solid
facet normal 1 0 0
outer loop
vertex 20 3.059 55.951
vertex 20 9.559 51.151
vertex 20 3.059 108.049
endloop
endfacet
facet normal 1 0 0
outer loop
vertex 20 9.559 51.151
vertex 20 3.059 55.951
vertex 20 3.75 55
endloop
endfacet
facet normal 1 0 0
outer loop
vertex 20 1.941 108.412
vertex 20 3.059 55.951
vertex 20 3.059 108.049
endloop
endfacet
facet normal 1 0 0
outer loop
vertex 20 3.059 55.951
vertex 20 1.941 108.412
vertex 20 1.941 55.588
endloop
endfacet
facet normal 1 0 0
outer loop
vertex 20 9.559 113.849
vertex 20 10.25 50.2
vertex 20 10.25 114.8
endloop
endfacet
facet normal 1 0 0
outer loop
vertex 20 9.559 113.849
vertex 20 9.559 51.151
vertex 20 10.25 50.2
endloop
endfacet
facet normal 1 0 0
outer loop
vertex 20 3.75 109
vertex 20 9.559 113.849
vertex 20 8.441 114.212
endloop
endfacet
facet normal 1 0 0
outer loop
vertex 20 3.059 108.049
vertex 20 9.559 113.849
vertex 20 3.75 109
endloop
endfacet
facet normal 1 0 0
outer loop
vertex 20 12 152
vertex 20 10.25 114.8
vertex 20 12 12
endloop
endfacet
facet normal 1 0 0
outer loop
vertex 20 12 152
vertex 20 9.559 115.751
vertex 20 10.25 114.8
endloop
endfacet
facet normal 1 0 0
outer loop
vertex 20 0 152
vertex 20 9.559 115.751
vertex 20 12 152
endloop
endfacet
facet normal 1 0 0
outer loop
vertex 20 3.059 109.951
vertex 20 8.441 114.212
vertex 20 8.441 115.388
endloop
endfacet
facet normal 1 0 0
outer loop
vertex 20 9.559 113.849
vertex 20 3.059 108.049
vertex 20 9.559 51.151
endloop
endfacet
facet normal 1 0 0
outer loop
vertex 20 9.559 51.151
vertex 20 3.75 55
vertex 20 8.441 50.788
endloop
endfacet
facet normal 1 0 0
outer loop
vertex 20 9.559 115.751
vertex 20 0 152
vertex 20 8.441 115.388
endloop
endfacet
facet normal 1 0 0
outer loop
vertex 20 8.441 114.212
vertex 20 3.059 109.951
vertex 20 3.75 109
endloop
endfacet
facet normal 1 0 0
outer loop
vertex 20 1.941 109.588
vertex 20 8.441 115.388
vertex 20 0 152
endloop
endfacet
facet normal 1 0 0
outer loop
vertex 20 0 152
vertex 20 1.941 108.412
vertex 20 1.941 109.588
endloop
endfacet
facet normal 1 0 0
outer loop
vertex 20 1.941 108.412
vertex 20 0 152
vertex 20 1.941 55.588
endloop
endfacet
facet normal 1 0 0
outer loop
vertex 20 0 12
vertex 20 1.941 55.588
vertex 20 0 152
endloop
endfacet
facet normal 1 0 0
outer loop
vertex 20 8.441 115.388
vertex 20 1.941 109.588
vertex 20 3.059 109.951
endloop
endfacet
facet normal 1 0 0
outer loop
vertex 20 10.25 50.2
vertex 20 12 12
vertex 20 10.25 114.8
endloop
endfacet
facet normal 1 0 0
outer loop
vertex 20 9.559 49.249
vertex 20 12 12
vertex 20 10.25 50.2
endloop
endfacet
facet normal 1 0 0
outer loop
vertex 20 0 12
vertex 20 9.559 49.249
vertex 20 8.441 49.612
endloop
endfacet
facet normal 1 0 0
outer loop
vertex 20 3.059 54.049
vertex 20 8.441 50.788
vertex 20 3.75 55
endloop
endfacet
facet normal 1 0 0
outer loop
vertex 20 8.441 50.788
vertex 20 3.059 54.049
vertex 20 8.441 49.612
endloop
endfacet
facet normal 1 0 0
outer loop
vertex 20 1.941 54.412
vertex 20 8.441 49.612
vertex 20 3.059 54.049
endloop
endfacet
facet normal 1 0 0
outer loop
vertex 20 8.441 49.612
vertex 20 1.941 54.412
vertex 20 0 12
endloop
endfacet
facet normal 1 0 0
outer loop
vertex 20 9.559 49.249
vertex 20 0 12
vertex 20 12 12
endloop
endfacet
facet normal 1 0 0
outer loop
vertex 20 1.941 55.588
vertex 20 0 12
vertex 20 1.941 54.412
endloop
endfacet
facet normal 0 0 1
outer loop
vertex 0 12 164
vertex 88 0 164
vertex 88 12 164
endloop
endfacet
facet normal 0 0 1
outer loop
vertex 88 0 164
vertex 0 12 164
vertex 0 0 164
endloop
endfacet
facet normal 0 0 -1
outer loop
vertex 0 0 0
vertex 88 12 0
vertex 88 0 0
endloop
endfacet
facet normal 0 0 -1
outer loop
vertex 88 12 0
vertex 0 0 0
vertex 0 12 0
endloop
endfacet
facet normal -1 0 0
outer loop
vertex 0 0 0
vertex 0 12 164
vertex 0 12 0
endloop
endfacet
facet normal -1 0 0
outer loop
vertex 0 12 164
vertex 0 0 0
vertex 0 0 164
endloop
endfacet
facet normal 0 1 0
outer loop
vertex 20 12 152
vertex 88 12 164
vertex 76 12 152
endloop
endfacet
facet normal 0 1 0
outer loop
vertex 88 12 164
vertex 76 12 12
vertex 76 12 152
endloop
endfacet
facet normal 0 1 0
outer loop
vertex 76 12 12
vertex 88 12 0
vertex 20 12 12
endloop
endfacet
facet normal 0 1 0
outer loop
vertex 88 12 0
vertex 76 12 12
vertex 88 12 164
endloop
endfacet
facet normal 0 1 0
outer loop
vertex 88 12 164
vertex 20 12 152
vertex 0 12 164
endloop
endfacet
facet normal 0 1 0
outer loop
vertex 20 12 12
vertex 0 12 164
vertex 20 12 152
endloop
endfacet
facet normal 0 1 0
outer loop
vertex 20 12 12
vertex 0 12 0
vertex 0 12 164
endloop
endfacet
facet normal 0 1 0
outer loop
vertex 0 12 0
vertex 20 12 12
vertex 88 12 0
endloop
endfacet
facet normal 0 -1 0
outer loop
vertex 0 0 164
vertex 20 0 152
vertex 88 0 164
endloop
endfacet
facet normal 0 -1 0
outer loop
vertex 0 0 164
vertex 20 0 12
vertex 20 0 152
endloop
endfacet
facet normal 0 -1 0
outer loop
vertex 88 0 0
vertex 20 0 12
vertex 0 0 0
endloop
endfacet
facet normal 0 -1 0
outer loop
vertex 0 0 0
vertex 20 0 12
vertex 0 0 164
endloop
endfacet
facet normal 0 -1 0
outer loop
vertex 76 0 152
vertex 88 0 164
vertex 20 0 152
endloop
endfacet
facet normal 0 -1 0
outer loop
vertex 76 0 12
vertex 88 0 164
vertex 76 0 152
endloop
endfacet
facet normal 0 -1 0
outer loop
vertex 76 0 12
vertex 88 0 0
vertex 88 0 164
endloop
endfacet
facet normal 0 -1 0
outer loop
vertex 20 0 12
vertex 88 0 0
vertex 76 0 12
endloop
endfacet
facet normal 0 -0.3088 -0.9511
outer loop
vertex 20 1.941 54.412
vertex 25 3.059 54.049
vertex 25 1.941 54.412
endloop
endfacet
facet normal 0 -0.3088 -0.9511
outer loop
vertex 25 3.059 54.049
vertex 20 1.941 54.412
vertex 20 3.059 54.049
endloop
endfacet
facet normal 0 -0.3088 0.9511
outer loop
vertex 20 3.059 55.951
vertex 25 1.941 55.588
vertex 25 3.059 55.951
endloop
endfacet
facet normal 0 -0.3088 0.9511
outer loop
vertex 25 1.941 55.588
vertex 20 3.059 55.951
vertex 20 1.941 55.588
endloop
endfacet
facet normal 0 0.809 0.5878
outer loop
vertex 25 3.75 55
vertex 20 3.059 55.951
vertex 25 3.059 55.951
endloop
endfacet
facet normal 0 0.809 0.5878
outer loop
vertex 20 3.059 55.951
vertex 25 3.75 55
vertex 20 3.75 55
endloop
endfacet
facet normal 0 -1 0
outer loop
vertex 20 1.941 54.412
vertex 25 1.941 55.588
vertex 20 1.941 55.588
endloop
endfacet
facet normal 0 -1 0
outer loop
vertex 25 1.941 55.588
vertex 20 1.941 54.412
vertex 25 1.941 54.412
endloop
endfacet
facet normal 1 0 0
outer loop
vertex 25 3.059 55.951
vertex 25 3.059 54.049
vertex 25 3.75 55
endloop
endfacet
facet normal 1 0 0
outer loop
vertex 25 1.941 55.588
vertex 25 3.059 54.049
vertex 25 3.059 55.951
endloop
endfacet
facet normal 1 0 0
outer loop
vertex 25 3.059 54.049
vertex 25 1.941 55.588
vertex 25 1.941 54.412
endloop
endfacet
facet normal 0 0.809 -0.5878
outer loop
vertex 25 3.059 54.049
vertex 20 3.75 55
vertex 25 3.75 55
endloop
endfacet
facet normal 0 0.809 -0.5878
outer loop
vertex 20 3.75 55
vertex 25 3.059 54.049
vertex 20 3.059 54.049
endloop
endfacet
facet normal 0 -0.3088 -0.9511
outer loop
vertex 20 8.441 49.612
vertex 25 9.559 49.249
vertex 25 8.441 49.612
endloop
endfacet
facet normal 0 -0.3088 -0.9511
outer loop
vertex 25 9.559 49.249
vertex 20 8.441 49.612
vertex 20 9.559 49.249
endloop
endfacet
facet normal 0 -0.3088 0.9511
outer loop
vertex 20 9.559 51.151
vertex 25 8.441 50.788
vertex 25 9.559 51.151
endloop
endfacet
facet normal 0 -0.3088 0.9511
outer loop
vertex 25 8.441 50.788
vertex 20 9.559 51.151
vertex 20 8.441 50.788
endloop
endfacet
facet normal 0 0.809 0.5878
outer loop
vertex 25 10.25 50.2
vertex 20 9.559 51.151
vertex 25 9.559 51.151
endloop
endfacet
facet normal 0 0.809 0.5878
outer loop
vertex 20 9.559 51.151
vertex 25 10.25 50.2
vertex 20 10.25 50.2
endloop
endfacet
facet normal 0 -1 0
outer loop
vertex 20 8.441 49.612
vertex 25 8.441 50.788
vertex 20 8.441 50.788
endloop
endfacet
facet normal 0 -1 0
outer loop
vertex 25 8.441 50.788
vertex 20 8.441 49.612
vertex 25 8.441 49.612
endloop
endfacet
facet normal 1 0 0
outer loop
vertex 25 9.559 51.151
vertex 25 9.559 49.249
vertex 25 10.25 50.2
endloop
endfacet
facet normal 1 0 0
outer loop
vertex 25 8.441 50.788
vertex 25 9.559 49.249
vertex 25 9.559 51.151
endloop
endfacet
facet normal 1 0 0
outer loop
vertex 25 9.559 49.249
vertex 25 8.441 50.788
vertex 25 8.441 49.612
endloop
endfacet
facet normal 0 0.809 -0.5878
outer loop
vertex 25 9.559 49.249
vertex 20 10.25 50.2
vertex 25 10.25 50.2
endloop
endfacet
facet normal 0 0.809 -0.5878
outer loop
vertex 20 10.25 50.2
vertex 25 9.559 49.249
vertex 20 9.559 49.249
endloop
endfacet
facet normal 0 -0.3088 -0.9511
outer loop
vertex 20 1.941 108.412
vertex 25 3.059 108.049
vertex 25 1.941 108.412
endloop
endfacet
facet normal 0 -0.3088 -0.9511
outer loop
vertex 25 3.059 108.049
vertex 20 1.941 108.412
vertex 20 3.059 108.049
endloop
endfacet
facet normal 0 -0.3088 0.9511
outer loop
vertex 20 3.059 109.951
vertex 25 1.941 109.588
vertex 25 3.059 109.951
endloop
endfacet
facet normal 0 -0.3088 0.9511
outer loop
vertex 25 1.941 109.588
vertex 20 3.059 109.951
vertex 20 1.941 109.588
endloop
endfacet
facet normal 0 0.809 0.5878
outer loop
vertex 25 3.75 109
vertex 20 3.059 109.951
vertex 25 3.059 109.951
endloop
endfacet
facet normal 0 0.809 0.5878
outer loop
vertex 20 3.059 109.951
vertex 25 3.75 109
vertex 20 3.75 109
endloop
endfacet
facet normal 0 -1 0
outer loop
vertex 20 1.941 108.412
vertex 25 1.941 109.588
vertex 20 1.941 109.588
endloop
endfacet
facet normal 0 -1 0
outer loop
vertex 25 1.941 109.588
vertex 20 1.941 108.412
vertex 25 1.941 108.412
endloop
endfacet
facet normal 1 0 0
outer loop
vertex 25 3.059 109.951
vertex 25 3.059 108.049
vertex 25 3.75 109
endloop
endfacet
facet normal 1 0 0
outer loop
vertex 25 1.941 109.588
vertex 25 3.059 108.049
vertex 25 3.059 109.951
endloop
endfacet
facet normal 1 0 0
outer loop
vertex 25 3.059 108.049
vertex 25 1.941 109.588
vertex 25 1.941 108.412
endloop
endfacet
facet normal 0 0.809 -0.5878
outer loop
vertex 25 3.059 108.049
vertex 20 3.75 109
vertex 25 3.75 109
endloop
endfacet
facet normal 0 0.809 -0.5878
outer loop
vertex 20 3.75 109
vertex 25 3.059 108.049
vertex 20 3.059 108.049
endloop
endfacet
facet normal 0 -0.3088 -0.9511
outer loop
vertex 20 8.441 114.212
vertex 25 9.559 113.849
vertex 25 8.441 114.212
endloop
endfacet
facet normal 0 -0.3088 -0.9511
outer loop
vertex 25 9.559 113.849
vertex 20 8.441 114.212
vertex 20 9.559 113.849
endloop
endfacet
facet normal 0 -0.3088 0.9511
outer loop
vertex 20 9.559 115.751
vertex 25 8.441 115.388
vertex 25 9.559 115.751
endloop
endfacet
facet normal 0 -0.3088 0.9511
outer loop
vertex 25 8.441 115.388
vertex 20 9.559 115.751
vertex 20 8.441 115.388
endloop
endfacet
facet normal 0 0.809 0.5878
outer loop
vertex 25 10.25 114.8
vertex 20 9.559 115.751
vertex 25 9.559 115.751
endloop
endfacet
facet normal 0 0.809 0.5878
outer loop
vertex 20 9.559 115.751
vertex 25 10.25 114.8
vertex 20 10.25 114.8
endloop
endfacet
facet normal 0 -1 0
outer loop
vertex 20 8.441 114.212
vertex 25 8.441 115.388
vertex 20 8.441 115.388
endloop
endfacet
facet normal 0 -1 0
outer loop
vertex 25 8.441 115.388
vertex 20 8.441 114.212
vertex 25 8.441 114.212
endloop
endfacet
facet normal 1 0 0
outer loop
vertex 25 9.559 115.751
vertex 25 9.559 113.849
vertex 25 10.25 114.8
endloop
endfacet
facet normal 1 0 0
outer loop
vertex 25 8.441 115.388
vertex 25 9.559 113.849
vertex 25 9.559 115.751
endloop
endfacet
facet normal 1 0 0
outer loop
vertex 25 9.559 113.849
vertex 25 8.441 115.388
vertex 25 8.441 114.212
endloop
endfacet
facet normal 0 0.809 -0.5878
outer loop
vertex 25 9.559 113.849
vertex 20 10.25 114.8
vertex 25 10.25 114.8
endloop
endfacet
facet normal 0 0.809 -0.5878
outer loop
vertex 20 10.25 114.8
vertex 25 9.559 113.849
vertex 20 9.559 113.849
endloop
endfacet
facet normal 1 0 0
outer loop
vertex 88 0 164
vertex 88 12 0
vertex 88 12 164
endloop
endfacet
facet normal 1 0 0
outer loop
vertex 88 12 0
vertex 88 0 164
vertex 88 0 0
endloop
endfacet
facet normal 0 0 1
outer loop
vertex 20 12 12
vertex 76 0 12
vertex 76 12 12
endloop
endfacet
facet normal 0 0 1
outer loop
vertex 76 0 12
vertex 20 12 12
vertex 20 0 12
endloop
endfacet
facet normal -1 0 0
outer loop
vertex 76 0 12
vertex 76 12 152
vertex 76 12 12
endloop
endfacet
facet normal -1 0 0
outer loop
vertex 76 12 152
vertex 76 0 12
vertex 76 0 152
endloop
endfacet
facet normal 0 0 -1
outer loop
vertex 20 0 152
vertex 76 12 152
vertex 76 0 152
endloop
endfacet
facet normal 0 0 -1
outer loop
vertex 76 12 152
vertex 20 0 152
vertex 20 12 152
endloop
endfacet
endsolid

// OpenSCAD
width = 12;


between_outer_holes = 54;
outer_hole_to_outside = 55;
total_height = between_outer_holes + 2 * outer_hole_to_outside;

back_depth = 68;
front_depth = 20;
total_depth = back_depth + front_depth;

hole_depth = 5;
hole_radius = 1;

x_between_holes = 6.5;
x_outer_hole_from_edge = width / 2 - x_between_holes / 2;
x_inner_hole_from_edge = width / 2 + x_between_holes / 2;
y_between_holes = 4.8;

difference() {
    cube([front_depth,width,total_height]);
 
}

translate([front_depth - 1, x_outer_hole_from_edge, outer_hole_to_outside]) {
    rotate([90,0,90]){
        cylinder(h = hole_depth +1, r = hole_radius);
    }
}
translate([front_depth - 1, x_inner_hole_from_edge, outer_hole_to_outside - y_between_holes]) {
    rotate([90,0,90]){
        cylinder(h = hole_depth +1, r = hole_radius);
    }
}
translate([front_depth - 1, x_outer_hole_from_edge, outer_hole_to_outside + between_outer_holes]) {
    rotate([90,0,90]){
        cylinder(h = hole_depth +1, r = hole_radius);
    }
}
translate([front_depth - 1, x_inner_hole_from_edge, outer_hole_to_outside + outer_hole_to_outside + y_between_holes]) {
    rotate([90,0,90]){
        cylinder(h = hole_depth +1, r = hole_radius);
    }
}   


cube([total_depth,width,width]);
translate([total_depth- width, 0,0]) {
    cube([width,width,total_height]);
}
translate([0,0, total_height- width]) {
    cube([total_depth,width,width]);
}
